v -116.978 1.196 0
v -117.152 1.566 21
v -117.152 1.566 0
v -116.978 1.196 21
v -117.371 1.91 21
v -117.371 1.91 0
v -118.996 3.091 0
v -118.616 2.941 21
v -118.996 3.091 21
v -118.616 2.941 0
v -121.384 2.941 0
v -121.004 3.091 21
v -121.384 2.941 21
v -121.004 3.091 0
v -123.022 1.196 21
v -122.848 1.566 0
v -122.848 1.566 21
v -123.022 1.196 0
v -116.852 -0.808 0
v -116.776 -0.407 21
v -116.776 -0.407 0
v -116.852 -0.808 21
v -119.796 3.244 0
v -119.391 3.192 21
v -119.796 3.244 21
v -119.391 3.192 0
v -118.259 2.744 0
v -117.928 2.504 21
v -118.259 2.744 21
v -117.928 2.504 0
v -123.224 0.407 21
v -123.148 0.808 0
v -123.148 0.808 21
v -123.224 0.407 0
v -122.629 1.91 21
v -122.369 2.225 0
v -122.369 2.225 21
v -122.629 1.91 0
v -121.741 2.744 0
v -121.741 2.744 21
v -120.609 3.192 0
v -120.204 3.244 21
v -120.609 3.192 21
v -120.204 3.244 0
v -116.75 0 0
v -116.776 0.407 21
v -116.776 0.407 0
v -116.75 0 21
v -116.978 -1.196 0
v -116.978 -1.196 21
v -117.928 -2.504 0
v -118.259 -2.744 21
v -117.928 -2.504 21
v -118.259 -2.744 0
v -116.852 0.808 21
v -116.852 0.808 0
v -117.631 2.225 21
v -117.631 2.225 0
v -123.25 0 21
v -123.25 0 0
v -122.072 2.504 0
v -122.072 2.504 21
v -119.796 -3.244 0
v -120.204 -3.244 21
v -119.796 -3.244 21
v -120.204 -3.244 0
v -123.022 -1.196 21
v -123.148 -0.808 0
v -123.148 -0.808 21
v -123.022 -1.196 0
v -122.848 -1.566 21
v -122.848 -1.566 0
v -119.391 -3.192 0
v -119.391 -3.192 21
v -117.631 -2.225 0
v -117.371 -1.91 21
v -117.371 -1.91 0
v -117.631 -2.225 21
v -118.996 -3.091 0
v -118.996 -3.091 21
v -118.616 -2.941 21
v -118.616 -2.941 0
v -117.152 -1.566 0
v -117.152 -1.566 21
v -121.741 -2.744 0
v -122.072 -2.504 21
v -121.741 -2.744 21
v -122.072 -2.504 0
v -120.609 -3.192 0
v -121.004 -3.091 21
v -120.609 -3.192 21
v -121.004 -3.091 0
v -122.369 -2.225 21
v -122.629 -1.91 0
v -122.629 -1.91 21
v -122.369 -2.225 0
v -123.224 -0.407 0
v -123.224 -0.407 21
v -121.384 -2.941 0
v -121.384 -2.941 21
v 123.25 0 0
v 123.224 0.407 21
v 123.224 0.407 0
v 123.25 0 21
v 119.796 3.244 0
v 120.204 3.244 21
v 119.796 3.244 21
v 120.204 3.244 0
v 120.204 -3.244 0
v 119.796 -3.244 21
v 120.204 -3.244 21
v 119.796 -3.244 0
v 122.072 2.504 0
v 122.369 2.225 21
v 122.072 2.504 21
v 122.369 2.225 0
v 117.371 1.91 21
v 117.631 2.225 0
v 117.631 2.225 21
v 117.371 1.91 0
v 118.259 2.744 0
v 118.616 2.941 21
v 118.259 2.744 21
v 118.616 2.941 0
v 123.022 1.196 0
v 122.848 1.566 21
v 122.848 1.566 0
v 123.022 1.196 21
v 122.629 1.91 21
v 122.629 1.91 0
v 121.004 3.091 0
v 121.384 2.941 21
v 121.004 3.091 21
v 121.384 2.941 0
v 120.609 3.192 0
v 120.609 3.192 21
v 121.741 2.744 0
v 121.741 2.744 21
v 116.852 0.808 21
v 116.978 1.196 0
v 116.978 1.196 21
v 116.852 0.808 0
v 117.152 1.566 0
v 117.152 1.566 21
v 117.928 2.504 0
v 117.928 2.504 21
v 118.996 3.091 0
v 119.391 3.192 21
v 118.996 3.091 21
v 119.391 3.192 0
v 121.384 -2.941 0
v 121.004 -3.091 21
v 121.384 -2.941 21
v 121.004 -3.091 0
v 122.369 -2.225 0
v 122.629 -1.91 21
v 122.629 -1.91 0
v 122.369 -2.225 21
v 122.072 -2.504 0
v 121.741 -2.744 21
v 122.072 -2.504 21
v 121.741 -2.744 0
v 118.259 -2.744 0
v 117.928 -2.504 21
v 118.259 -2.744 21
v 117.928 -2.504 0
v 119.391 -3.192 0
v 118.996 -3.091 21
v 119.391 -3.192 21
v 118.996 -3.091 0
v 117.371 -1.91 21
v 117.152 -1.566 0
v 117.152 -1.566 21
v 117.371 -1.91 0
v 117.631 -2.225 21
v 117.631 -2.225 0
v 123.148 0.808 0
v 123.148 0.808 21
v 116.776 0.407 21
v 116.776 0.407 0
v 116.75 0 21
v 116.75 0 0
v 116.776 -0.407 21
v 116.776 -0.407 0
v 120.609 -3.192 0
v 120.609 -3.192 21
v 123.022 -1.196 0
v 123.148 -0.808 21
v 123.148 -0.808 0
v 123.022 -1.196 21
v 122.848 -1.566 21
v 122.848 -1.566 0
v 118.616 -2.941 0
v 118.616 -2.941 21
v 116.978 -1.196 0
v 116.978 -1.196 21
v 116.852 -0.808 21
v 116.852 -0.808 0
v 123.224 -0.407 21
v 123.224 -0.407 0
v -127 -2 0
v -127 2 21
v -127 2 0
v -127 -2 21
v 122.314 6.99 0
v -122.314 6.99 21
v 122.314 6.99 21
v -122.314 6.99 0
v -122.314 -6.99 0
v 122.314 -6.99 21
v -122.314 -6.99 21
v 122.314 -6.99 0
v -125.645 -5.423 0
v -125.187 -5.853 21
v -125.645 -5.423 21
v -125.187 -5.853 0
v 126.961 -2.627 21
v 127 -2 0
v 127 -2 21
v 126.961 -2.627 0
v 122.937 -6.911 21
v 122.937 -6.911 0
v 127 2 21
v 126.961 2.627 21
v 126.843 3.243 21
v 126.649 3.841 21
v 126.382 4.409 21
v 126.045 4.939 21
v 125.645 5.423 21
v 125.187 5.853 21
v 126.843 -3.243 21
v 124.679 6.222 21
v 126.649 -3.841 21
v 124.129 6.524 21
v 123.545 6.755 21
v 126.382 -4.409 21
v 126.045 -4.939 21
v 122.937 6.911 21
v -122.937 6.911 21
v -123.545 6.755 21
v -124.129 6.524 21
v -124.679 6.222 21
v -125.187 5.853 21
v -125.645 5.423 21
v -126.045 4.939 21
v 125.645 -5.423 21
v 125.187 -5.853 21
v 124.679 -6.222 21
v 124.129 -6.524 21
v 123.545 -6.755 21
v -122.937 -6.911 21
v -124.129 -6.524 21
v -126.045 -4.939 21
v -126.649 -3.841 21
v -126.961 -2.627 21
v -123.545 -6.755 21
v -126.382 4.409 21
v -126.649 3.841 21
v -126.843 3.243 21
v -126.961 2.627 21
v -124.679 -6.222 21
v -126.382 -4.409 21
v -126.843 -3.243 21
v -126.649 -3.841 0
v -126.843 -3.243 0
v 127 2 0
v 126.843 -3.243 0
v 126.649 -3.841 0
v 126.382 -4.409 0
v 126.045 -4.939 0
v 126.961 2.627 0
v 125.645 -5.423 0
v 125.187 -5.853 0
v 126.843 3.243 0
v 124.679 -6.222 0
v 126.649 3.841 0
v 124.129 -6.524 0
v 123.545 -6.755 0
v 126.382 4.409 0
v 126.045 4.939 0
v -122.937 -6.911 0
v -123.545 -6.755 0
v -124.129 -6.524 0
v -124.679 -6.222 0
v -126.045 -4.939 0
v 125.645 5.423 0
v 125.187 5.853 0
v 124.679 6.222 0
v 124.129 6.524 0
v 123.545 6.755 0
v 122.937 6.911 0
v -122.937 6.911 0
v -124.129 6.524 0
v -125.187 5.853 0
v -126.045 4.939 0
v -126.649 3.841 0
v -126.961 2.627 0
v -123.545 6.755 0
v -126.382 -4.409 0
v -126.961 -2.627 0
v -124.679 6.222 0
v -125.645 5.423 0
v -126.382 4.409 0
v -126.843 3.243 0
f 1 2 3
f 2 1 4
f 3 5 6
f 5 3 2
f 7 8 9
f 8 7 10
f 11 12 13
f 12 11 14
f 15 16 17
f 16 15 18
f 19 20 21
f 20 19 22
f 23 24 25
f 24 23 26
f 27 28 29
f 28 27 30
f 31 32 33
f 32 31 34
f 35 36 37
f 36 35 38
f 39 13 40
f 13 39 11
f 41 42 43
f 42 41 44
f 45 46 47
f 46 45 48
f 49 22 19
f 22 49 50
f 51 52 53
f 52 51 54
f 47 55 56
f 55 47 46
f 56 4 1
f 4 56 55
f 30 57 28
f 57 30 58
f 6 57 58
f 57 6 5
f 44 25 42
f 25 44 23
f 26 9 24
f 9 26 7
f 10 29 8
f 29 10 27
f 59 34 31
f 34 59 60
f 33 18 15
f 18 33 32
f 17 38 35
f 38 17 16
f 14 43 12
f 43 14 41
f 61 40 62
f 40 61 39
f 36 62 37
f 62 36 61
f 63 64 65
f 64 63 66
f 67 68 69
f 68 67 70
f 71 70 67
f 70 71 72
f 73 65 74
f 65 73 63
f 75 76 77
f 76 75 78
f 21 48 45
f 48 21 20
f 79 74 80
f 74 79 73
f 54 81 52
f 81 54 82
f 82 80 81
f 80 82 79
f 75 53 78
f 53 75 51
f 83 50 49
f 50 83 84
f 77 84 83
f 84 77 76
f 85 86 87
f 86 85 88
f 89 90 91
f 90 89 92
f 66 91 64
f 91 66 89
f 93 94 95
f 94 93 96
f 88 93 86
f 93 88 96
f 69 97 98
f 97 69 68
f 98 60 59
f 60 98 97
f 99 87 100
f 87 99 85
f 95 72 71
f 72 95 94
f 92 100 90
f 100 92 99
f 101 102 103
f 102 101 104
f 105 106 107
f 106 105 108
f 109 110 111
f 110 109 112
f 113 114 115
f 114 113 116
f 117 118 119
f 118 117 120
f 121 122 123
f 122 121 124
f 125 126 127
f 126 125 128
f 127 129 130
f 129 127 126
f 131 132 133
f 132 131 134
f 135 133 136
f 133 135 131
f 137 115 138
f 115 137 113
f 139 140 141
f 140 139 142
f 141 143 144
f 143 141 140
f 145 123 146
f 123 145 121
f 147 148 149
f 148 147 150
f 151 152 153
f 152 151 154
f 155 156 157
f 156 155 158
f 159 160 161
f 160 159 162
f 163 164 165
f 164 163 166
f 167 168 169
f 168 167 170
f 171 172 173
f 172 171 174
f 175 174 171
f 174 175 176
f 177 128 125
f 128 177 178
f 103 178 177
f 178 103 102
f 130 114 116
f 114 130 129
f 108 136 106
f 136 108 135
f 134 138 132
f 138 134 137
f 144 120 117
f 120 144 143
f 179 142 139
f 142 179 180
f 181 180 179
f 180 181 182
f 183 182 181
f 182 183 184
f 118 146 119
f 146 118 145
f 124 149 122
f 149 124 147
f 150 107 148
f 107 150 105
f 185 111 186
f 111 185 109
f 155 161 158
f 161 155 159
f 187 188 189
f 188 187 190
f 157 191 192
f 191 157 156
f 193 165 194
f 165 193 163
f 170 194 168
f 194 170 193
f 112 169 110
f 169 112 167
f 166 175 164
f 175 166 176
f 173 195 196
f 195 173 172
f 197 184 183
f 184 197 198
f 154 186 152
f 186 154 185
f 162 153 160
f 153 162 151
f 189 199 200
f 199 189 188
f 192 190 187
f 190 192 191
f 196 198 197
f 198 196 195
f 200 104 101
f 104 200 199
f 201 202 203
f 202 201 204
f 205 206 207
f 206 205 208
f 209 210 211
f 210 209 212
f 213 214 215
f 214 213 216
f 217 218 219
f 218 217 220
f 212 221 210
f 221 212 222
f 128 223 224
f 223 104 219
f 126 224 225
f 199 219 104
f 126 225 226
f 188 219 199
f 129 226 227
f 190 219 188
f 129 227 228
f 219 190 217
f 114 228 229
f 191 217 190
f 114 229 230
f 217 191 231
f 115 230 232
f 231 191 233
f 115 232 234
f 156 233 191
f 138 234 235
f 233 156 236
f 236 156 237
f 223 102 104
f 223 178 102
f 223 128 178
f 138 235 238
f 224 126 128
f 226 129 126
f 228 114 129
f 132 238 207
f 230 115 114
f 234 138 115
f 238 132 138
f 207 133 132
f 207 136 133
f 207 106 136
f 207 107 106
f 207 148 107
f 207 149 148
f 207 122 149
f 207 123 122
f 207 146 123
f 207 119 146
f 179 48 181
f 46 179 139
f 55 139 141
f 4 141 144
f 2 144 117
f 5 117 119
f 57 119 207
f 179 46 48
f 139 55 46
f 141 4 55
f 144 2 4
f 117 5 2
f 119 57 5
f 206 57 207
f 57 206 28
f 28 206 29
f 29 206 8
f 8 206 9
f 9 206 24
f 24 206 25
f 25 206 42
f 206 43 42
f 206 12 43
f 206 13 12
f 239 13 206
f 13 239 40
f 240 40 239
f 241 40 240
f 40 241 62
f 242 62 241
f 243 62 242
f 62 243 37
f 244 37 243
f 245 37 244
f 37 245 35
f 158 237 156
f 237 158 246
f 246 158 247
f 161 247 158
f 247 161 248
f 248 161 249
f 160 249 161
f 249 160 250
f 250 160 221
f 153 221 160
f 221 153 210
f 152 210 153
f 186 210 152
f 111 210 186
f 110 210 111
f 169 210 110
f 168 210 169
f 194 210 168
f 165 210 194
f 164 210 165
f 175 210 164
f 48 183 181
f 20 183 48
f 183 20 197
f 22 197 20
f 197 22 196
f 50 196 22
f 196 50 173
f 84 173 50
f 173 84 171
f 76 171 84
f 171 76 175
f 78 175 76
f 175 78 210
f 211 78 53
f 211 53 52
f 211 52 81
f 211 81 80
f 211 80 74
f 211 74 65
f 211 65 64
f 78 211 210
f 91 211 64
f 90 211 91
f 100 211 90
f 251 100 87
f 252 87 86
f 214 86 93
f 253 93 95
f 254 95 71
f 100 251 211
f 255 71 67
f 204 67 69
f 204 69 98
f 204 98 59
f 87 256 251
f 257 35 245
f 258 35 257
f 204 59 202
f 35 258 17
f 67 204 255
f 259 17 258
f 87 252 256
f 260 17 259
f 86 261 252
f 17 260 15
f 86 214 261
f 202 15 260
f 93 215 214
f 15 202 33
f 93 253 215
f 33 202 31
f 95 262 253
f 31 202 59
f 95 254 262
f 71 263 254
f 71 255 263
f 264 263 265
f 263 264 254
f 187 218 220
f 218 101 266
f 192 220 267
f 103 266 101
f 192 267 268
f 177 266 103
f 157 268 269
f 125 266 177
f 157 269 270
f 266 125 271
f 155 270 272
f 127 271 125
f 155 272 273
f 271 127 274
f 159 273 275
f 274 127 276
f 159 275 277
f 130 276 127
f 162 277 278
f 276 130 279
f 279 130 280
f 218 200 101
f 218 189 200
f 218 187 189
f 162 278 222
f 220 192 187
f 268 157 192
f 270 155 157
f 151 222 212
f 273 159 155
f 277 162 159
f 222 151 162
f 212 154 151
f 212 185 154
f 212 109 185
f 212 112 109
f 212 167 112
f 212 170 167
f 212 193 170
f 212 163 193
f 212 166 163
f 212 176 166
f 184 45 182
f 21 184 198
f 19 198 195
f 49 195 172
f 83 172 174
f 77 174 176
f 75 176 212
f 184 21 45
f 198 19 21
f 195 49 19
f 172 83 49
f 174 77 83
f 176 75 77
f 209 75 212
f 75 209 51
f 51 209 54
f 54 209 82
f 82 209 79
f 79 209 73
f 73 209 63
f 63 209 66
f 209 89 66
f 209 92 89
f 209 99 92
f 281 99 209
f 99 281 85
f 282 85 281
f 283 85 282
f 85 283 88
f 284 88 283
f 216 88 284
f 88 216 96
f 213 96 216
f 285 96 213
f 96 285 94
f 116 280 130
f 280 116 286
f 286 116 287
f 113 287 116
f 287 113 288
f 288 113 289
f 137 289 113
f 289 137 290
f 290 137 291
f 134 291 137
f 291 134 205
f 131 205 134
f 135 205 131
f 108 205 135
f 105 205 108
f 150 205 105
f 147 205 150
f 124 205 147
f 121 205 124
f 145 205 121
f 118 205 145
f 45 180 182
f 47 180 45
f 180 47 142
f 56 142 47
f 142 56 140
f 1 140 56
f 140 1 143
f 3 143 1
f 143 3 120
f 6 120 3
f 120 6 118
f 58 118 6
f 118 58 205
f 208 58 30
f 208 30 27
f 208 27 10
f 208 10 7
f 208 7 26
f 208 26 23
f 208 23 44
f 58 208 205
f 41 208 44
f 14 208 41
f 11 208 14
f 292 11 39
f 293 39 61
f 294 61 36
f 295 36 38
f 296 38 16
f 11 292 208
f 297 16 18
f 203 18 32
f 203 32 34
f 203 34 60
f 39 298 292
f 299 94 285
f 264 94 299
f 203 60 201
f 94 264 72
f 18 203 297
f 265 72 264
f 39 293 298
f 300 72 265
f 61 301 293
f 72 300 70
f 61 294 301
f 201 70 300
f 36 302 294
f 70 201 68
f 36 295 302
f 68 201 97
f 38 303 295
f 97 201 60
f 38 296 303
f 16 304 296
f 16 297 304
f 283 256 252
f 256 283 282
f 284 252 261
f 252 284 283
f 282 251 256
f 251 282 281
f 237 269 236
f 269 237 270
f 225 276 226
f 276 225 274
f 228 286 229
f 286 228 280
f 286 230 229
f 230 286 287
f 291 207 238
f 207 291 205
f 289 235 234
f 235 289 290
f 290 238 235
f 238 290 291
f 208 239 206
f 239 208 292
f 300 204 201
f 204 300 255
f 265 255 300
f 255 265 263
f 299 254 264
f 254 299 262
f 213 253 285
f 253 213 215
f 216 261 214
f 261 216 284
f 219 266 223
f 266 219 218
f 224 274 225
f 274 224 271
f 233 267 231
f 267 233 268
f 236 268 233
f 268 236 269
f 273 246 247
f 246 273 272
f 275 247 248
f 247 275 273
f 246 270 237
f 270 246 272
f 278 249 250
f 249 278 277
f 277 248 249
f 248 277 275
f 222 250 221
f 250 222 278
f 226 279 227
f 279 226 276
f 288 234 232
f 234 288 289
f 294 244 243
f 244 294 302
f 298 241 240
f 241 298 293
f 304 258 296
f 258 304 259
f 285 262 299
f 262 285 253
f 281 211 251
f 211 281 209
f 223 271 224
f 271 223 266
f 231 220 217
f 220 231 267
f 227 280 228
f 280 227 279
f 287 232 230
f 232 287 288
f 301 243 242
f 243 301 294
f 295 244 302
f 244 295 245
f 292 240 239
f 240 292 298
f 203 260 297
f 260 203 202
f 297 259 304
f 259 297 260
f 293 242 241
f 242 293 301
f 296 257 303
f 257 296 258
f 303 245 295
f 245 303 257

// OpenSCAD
$fn = 50;


difference() {
	union() {
		hull() {
			translate(v = [-122.0000000000, 2.0000000000, 0]) {
				cylinder(h = 21, r = 5);
			}
			translate(v = [122.0000000000, 2.0000000000, 0]) {
				cylinder(h = 21, r = 5);
			}
			translate(v = [-122.0000000000, -2.0000000000, 0]) {
				cylinder(h = 21, r = 5);
			}
			translate(v = [122.0000000000, -2.0000000000, 0]) {
				cylinder(h = 21, r = 5);
			}
		}
	}
	union() {
		translate(v = [-120.0000000000, 0.0000000000, -100.0000000000]) {
			cylinder(h = 200, r = 3.2500000000);
		}
		translate(v = [-120.0000000000, 0.0000000000, -100.0000000000]) {
			cylinder(h = 200, r = 3.2500000000);
		}
		translate(v = [120.0000000000, 0.0000000000, -100.0000000000]) {
			cylinder(h = 200, r = 3.2500000000);
		}
		translate(v = [120.0000000000, 0.0000000000, -100.0000000000]) {
			cylinder(h = 200, r = 3.2500000000);
		}
	}
}
